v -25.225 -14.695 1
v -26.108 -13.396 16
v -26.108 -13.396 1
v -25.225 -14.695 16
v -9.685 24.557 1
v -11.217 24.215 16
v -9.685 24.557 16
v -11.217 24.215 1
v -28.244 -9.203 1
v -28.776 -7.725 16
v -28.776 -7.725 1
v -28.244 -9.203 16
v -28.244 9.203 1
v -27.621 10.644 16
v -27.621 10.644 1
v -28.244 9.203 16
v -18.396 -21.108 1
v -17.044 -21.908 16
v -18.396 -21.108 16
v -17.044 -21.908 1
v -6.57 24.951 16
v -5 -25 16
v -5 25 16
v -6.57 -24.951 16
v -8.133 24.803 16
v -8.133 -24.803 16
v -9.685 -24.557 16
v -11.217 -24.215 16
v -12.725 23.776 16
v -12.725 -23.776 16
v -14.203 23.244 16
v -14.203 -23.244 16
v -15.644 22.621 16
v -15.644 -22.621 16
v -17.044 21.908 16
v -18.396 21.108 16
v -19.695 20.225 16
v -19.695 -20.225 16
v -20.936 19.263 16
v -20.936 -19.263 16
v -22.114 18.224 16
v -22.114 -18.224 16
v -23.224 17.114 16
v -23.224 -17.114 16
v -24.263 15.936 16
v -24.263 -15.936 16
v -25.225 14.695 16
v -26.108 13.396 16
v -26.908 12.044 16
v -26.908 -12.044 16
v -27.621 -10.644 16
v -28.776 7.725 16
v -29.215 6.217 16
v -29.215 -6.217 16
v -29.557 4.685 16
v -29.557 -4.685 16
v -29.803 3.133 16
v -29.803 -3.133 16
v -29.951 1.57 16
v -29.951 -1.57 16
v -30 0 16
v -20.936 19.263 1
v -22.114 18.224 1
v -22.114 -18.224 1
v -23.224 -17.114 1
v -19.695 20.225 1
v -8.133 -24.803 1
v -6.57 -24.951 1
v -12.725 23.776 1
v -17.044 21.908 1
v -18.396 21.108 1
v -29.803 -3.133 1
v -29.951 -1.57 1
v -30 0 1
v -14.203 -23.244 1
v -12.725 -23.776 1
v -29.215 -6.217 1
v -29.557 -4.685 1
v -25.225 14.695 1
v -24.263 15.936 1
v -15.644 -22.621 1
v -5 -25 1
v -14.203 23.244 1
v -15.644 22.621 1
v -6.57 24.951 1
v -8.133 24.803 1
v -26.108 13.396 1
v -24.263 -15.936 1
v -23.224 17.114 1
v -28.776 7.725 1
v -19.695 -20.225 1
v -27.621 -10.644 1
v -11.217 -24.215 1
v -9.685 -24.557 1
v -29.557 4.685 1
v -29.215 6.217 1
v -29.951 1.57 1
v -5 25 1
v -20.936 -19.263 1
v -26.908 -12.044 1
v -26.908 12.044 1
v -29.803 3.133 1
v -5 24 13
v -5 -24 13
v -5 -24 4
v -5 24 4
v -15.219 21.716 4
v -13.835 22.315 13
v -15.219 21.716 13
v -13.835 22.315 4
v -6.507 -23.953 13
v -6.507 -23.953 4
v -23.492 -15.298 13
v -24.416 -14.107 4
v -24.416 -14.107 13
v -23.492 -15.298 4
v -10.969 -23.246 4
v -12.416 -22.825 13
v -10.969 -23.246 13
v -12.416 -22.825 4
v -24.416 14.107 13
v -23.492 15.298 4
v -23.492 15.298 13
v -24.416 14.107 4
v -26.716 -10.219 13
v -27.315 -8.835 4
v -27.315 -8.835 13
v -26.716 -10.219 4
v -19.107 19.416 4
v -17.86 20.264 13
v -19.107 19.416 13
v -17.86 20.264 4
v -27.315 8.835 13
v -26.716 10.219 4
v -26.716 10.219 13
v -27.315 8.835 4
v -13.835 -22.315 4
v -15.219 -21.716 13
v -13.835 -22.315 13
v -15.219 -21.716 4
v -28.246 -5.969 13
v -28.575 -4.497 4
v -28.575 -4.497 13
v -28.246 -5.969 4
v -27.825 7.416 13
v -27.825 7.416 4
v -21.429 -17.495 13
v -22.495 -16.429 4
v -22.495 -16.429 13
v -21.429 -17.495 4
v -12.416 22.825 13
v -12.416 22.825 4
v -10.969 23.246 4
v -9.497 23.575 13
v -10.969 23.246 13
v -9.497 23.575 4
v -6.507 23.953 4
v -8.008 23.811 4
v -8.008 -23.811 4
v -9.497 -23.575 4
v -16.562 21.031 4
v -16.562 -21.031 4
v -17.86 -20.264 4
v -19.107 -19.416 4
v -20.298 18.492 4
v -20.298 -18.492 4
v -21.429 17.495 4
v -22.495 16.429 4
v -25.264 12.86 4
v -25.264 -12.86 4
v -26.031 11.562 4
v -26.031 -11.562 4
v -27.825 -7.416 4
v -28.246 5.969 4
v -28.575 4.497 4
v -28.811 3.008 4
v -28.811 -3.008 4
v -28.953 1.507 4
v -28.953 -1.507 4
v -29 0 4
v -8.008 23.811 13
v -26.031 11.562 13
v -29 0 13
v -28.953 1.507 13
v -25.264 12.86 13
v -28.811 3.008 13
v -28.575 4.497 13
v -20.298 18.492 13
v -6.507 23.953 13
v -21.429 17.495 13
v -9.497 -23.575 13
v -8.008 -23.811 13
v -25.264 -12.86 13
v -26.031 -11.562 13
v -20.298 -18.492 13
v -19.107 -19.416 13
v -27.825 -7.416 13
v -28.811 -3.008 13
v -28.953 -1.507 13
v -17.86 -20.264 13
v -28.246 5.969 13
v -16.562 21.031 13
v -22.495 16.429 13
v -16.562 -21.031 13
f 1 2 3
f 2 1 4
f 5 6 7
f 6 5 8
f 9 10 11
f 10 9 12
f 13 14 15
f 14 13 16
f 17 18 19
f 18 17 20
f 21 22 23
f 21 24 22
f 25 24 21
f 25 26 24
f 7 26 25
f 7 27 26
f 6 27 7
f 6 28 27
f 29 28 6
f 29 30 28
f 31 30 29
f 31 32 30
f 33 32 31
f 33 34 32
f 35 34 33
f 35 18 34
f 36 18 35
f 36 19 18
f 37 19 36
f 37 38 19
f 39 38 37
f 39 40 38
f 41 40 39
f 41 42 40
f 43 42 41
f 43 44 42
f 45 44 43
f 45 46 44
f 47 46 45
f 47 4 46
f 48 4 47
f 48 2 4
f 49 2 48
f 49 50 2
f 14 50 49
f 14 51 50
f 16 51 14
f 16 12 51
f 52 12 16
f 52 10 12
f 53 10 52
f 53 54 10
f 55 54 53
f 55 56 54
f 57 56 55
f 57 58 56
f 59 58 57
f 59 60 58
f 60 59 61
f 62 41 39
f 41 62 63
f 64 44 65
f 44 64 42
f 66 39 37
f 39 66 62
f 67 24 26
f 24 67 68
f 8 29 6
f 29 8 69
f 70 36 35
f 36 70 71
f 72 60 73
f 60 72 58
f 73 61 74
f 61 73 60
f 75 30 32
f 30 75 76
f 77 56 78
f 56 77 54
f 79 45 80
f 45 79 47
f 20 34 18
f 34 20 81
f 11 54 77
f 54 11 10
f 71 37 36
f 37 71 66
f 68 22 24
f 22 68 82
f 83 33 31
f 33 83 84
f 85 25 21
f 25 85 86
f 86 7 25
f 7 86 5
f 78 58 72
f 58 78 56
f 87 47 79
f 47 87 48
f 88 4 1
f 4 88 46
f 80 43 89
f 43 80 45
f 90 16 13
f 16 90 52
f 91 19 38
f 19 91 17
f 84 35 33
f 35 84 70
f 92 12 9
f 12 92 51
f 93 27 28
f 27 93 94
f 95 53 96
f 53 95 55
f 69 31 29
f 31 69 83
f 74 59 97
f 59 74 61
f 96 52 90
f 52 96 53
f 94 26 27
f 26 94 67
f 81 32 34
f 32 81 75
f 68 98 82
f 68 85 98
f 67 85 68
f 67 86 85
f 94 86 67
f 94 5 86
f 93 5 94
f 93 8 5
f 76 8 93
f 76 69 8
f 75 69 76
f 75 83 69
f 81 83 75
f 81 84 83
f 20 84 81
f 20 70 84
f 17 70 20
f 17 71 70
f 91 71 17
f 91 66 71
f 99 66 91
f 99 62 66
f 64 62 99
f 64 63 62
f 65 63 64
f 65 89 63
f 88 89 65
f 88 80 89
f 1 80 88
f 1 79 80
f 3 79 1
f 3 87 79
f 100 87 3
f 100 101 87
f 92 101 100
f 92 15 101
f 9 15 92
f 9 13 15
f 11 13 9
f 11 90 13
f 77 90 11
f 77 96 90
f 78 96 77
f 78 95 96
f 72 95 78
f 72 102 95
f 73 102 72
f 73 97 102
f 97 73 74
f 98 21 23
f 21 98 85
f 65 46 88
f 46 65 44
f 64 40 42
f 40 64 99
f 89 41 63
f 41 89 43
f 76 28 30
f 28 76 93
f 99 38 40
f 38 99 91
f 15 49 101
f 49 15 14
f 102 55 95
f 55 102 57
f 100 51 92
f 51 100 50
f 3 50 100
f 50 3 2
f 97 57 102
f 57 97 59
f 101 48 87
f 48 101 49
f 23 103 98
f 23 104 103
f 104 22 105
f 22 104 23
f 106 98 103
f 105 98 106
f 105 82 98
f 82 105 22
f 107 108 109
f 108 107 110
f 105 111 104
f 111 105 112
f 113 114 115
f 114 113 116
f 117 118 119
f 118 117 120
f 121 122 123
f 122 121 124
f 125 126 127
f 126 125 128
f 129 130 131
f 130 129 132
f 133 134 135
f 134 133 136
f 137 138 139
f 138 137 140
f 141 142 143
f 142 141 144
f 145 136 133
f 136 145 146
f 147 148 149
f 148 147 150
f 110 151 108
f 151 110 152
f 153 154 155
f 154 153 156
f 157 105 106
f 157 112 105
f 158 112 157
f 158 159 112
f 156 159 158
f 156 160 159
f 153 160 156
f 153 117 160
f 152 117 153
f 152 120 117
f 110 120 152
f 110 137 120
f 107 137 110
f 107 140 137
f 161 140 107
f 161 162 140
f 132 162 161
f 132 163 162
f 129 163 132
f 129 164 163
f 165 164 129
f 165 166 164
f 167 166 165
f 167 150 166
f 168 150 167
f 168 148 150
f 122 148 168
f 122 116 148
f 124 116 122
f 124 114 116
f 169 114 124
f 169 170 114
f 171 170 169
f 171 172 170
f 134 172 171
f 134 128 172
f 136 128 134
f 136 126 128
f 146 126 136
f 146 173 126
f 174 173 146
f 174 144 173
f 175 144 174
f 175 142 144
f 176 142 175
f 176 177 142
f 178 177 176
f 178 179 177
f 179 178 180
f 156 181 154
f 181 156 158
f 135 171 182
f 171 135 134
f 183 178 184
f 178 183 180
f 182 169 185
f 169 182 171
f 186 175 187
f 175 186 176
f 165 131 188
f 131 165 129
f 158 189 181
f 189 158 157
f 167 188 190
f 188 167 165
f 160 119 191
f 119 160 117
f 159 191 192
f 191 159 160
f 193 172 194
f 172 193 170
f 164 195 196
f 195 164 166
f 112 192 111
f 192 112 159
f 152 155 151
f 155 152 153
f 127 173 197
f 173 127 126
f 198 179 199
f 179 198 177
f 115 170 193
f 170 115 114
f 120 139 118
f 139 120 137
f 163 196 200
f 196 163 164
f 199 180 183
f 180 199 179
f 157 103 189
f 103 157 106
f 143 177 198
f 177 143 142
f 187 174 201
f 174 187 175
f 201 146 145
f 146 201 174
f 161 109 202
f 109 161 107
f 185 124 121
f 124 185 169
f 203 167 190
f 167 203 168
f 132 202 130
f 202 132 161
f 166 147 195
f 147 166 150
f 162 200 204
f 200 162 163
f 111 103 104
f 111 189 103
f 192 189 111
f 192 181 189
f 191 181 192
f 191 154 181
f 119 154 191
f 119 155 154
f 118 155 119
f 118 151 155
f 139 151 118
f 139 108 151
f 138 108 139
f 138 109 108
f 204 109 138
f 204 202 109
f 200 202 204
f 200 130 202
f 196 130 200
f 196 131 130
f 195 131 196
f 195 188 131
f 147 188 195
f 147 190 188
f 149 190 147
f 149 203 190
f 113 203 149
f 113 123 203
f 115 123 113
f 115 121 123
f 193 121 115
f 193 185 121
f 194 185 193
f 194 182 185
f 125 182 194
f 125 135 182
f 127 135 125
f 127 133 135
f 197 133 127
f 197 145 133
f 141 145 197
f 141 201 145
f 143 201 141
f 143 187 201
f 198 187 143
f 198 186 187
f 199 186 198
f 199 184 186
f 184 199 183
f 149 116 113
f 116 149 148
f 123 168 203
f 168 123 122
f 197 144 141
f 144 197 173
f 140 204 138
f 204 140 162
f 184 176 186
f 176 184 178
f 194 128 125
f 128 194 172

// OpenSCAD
translate([-5, 0, 1]) {
    difference() {
        difference() {
            cylinder(h=15, r=25, $fn=100);
            translate([25, 0, 0]) {
                cube(50, center=true);
            }
        }
        translate([0, 0, 3]) {
            cylinder(h=9, r=24, $fn=100);
        }
    }
}
